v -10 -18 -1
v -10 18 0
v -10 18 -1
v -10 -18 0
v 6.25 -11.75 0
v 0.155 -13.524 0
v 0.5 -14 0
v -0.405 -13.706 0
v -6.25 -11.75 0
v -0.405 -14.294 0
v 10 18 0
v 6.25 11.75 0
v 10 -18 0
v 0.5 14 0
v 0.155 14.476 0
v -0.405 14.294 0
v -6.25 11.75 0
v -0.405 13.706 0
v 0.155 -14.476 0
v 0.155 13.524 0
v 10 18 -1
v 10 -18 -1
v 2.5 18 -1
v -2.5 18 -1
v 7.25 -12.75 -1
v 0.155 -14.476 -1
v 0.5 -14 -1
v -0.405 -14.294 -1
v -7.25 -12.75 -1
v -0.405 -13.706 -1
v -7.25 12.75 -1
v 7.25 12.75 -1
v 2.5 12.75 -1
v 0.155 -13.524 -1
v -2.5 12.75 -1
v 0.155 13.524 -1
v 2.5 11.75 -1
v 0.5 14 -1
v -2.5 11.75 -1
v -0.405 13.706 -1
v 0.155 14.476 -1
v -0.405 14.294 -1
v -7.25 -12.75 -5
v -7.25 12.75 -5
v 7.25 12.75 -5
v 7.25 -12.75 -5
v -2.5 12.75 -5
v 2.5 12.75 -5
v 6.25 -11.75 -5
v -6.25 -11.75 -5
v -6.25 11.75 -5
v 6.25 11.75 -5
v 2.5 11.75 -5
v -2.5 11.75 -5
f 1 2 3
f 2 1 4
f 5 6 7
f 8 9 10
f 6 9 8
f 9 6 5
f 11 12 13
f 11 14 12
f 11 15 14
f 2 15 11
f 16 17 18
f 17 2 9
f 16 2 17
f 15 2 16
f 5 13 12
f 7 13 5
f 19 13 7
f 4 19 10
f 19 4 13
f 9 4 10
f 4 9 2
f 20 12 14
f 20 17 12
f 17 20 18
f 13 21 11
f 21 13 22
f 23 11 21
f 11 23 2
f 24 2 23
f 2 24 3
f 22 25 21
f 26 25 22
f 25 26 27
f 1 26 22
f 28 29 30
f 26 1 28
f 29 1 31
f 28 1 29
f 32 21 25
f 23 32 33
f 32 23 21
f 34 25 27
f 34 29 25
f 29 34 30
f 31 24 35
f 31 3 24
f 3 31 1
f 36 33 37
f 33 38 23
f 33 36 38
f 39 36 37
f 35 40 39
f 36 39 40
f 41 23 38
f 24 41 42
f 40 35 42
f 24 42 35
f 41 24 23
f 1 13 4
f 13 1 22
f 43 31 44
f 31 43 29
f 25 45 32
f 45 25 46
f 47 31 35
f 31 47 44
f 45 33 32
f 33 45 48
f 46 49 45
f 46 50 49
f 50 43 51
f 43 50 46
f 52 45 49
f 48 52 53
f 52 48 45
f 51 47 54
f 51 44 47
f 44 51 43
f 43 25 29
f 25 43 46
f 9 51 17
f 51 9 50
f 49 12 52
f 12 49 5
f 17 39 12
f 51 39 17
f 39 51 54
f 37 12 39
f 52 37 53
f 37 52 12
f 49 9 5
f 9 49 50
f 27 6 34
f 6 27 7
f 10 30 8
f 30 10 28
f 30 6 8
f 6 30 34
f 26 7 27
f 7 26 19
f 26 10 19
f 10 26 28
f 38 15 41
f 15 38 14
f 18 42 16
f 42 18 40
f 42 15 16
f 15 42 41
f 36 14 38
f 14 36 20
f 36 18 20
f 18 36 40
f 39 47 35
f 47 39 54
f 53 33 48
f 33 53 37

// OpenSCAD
module marco()
    {
        difference()
        {
            union()
            {
                translate([0,0,-1/2]) cube([20,36,1],center=true);
                translate([0,0,-5/2]) cube([14.5,25.5,5],center=true);
            }
            translate([0,0,-5/2]) cube([12.5,23.5,5],center=true);
            translate([0,-28/2,-1]) cylinder(d=1,h=1);
            translate([0,28/2,-1]) cylinder(d=1,h=1);
            translate([0,36/2,-7/2]) cube([5,36/2,5],center=true);
        }
    }
    
marco();
    
